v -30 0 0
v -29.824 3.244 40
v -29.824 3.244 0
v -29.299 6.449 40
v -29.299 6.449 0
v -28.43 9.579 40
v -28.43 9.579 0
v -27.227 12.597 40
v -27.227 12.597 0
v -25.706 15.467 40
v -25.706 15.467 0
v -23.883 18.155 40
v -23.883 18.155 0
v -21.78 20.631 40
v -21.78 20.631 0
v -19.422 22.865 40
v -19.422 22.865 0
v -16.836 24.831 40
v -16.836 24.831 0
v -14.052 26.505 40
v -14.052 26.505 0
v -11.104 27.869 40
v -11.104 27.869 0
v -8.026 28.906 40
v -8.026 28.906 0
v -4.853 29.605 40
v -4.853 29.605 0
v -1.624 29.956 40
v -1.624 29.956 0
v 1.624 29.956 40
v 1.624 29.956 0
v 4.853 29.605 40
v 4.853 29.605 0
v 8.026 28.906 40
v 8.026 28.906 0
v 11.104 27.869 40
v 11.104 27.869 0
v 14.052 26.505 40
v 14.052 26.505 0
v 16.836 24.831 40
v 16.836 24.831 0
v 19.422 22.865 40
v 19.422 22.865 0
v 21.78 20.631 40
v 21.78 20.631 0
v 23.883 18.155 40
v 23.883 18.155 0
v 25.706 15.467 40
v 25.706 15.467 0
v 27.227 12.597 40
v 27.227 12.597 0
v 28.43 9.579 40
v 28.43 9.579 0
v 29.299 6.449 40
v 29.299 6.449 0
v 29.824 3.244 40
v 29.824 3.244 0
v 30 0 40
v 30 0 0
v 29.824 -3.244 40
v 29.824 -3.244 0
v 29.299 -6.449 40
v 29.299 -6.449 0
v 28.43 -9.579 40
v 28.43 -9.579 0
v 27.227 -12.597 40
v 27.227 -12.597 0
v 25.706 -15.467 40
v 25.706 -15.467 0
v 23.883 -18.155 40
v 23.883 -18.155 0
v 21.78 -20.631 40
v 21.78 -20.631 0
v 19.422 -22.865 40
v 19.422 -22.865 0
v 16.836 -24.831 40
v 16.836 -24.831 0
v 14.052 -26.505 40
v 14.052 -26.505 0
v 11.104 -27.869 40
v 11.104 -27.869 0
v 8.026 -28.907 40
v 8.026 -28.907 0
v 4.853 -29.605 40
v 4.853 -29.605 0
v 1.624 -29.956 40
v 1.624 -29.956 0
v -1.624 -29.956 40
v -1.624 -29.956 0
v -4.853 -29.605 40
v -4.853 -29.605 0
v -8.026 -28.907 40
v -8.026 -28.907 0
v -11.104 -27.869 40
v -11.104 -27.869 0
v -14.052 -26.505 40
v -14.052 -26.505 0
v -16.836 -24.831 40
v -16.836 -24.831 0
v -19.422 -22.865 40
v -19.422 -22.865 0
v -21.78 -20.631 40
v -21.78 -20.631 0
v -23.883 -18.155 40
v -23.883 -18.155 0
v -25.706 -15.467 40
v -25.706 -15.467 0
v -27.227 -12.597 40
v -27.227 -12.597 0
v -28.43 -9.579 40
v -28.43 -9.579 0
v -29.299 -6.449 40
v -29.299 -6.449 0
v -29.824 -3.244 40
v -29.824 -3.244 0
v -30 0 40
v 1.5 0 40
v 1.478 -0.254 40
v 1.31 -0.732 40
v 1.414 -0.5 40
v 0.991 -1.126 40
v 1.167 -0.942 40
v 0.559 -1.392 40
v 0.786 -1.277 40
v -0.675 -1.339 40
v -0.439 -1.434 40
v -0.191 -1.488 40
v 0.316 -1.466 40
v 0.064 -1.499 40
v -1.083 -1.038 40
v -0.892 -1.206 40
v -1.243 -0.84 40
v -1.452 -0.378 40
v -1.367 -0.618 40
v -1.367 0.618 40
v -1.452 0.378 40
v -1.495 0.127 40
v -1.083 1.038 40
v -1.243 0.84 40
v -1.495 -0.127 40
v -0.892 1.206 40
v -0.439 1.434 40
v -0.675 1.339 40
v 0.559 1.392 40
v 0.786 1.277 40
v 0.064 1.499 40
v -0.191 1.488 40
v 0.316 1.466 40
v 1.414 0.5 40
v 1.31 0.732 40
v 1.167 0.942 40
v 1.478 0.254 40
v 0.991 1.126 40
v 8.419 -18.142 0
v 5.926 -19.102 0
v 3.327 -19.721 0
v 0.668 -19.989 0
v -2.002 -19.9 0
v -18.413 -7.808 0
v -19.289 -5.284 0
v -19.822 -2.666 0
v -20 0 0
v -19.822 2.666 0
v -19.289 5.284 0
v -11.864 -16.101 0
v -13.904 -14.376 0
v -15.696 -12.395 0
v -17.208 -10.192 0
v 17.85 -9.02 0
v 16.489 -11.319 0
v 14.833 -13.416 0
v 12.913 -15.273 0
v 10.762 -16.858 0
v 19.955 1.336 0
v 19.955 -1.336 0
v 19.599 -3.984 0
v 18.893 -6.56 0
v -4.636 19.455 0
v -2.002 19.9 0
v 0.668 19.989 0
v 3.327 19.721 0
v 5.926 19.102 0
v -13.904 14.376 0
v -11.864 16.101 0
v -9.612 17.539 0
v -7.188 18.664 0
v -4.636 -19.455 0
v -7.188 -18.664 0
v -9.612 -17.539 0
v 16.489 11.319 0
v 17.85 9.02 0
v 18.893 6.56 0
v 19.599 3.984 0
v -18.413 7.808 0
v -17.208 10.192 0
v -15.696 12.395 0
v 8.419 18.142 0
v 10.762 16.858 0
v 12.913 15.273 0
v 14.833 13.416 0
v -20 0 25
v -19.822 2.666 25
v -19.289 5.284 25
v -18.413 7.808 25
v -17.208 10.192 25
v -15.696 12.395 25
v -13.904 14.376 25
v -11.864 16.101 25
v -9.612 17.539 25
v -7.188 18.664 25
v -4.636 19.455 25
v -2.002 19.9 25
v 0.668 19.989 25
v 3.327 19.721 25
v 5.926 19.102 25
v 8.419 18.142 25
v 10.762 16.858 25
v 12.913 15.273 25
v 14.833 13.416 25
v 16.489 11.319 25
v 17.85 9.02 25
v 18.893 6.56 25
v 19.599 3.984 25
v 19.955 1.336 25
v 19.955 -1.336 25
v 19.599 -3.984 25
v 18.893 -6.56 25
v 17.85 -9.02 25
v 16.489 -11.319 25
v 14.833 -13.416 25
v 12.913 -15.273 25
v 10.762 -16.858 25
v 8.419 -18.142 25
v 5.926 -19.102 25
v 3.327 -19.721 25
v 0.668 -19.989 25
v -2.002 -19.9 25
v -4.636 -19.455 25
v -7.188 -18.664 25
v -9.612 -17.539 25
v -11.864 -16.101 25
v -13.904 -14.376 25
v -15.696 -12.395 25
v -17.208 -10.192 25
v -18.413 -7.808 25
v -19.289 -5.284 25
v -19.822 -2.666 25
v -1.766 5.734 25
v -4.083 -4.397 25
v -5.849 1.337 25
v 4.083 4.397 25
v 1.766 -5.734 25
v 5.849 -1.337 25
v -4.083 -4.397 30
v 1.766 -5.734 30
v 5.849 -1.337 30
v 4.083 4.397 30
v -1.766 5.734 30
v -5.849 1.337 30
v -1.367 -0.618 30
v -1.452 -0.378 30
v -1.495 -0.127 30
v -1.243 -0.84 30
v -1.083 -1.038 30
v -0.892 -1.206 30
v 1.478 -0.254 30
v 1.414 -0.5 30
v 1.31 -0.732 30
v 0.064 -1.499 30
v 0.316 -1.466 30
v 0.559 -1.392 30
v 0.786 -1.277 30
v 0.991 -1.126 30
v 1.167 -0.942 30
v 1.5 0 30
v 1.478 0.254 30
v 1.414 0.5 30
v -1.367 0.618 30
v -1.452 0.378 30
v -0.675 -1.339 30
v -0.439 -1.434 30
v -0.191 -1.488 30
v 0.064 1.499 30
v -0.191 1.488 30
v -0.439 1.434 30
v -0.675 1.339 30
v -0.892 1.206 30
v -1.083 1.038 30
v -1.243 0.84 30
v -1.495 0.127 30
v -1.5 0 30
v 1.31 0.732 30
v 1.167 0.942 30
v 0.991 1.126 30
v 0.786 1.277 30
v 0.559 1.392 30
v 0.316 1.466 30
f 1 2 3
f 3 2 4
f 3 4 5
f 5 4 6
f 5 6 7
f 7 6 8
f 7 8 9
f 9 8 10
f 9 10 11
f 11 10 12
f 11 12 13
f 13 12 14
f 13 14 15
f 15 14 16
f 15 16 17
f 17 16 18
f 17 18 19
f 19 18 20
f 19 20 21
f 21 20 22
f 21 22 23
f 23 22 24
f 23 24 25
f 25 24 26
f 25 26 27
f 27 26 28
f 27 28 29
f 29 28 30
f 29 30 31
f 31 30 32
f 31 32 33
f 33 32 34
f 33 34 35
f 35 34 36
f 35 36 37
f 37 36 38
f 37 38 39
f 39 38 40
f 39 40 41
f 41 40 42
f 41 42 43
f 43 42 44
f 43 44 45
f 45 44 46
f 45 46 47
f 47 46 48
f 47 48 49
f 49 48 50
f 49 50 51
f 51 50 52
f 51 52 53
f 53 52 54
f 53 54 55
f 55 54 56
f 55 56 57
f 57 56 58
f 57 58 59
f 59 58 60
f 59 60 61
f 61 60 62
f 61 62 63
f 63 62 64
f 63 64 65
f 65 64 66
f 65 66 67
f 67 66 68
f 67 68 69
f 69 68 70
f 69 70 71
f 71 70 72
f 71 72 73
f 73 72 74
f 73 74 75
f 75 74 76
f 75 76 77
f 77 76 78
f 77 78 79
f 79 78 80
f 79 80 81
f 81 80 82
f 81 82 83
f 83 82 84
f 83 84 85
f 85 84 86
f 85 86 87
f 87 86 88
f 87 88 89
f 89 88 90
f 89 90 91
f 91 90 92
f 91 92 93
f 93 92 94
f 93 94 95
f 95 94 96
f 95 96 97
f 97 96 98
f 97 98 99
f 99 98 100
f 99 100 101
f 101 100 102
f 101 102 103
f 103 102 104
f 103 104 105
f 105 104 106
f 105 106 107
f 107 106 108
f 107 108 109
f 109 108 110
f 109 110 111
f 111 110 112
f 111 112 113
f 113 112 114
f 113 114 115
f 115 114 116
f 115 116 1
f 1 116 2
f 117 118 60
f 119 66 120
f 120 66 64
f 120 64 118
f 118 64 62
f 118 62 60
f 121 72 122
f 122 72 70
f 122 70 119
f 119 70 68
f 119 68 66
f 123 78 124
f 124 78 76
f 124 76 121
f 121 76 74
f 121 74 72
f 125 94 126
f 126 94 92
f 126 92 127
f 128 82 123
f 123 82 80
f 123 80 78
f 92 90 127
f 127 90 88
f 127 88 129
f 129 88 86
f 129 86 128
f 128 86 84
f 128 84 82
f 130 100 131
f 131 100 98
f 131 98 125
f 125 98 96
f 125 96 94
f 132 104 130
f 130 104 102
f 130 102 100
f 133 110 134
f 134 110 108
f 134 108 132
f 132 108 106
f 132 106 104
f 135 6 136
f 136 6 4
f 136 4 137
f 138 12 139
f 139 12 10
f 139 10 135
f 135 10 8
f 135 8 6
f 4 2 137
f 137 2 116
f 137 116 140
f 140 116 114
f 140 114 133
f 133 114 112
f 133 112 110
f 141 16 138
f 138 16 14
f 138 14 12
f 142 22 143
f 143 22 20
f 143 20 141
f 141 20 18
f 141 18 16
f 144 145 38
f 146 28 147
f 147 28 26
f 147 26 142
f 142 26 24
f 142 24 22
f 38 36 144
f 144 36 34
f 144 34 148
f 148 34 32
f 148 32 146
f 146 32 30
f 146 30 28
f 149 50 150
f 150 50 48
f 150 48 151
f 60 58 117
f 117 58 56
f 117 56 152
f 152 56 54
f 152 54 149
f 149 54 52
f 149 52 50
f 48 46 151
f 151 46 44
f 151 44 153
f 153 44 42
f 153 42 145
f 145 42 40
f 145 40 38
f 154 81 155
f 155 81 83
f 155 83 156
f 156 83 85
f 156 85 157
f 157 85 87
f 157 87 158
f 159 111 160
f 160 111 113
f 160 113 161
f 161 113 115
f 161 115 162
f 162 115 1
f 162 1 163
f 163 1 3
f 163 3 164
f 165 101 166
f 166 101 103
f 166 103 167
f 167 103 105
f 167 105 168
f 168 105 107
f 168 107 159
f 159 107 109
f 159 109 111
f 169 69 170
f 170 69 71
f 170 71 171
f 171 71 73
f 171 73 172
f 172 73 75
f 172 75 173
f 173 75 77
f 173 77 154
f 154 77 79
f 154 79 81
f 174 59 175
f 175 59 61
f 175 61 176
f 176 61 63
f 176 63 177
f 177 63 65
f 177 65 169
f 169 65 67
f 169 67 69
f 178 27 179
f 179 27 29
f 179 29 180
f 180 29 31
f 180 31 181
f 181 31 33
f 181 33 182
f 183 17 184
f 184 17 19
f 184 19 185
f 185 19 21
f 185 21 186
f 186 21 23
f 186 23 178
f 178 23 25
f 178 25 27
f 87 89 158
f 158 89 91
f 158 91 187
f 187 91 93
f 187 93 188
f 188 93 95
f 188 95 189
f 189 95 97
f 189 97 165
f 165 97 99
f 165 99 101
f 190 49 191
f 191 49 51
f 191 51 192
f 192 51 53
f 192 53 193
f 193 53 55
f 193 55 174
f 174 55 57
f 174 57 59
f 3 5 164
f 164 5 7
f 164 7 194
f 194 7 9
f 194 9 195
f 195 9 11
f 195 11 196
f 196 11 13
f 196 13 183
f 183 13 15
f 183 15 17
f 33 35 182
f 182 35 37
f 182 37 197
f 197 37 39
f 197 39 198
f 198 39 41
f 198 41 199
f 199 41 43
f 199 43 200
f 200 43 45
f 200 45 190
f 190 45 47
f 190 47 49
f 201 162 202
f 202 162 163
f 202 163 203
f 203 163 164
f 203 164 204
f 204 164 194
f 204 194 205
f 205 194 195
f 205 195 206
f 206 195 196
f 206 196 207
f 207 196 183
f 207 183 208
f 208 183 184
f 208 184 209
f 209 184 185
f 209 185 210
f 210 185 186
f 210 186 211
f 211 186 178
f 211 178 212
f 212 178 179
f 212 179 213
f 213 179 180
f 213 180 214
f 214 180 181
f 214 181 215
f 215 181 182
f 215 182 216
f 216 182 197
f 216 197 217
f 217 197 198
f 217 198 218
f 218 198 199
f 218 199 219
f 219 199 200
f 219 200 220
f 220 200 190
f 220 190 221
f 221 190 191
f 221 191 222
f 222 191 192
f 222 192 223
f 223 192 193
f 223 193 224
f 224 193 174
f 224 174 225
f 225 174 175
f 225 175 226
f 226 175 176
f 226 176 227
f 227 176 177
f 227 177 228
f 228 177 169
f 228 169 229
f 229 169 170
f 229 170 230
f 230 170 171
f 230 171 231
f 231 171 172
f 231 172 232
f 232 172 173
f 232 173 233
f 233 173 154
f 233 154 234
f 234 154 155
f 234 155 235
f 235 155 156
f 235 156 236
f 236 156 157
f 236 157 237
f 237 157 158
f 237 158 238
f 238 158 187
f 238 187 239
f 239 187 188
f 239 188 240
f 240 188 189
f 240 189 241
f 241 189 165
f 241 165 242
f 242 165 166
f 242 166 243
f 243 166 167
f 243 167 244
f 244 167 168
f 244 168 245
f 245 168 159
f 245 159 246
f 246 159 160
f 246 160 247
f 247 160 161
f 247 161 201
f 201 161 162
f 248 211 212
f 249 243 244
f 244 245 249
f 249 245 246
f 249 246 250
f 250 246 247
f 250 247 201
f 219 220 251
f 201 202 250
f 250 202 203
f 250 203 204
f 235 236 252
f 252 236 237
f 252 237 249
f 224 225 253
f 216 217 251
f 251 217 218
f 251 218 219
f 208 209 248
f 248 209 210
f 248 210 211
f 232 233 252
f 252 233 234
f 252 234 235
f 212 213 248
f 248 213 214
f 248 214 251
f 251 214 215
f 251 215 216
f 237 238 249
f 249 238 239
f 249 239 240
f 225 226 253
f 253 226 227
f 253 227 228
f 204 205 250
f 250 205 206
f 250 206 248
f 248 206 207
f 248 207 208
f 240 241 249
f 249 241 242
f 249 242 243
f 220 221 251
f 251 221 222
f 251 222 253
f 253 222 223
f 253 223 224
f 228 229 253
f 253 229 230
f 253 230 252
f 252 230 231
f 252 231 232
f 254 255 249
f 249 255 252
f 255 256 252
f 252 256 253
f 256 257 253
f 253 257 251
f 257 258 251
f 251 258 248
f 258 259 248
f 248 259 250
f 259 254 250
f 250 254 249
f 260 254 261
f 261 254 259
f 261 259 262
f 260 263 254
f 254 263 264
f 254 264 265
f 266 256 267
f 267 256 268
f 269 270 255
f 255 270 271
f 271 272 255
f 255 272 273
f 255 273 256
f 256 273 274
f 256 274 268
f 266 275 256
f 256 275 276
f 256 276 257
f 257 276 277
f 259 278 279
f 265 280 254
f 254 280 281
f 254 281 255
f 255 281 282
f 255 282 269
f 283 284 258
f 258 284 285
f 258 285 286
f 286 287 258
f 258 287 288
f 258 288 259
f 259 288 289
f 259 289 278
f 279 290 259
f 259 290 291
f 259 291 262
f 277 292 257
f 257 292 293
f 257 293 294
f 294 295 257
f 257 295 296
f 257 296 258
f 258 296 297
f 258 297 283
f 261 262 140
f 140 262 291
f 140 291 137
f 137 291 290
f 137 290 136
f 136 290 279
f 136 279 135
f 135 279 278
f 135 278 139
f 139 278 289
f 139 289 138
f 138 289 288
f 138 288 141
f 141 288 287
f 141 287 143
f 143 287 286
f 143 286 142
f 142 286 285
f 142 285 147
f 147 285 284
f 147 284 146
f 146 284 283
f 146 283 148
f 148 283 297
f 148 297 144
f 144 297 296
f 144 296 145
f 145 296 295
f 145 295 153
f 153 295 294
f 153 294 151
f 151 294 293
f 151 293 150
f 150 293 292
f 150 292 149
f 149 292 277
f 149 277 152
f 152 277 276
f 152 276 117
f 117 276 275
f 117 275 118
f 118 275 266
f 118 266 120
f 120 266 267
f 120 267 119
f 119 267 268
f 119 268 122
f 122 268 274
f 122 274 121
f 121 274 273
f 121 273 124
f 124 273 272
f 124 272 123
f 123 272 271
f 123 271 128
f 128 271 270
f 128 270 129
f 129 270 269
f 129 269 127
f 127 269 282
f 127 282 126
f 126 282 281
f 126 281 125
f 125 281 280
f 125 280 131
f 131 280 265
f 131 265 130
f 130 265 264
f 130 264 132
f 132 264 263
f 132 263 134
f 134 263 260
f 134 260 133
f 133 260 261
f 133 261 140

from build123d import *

# Parameters (mm, degrees)
SKETCH1_R           = 30
BOSS_EXTRUDE1_DEPTH = 40
SKETCH2_R           = 20
CUT_EXTRUDE1_DEPTH  = 25
CUT_EXTRUDE2_DEPTH  = 5
SKETCH5_R           = 1.5
CUT_EXTRUDE3_DEPTH  = 40


with BuildPart() as part:
    # Sketch1 → Boss-Extrude1 (new body)
    with BuildSketch(Plane.XY):
        Circle(SKETCH1_R)
    extrude(amount=BOSS_EXTRUDE1_DEPTH)

    # Sketch2 → Cut-Extrude1 (cut)
    with BuildSketch(Plane(origin=(0, 0, 0), x_dir=(-1, 0, 0), z_dir=(0, 0, -1))):
        Circle(SKETCH2_R)
    extrude(amount=-CUT_EXTRUDE1_DEPTH, mode=Mode.SUBTRACT)

    # Sketch3 → Cut-Extrude2 (cut)
    with BuildSketch(Plane(origin=(0, 0, 25), x_dir=(-1, 0, 0), z_dir=(0, 0, -1))):
        Polygon((4.082774554, -4.396697846), (5.849039304, 1.337437558), (1.76626475, 5.734135404), (-4.082774554, 4.396697846), (-5.849039304, -1.337437558), (-1.76626475, -5.734135404), align=None)
    extrude(amount=-CUT_EXTRUDE2_DEPTH, mode=Mode.SUBTRACT)

    # Sketch5 → Cut-Extrude3 (cut)
    with BuildSketch(Plane.XY.offset(40)):
        Circle(SKETCH5_R)
    extrude(amount=-CUT_EXTRUDE3_DEPTH, mode=Mode.SUBTRACT)


solid = part.part
